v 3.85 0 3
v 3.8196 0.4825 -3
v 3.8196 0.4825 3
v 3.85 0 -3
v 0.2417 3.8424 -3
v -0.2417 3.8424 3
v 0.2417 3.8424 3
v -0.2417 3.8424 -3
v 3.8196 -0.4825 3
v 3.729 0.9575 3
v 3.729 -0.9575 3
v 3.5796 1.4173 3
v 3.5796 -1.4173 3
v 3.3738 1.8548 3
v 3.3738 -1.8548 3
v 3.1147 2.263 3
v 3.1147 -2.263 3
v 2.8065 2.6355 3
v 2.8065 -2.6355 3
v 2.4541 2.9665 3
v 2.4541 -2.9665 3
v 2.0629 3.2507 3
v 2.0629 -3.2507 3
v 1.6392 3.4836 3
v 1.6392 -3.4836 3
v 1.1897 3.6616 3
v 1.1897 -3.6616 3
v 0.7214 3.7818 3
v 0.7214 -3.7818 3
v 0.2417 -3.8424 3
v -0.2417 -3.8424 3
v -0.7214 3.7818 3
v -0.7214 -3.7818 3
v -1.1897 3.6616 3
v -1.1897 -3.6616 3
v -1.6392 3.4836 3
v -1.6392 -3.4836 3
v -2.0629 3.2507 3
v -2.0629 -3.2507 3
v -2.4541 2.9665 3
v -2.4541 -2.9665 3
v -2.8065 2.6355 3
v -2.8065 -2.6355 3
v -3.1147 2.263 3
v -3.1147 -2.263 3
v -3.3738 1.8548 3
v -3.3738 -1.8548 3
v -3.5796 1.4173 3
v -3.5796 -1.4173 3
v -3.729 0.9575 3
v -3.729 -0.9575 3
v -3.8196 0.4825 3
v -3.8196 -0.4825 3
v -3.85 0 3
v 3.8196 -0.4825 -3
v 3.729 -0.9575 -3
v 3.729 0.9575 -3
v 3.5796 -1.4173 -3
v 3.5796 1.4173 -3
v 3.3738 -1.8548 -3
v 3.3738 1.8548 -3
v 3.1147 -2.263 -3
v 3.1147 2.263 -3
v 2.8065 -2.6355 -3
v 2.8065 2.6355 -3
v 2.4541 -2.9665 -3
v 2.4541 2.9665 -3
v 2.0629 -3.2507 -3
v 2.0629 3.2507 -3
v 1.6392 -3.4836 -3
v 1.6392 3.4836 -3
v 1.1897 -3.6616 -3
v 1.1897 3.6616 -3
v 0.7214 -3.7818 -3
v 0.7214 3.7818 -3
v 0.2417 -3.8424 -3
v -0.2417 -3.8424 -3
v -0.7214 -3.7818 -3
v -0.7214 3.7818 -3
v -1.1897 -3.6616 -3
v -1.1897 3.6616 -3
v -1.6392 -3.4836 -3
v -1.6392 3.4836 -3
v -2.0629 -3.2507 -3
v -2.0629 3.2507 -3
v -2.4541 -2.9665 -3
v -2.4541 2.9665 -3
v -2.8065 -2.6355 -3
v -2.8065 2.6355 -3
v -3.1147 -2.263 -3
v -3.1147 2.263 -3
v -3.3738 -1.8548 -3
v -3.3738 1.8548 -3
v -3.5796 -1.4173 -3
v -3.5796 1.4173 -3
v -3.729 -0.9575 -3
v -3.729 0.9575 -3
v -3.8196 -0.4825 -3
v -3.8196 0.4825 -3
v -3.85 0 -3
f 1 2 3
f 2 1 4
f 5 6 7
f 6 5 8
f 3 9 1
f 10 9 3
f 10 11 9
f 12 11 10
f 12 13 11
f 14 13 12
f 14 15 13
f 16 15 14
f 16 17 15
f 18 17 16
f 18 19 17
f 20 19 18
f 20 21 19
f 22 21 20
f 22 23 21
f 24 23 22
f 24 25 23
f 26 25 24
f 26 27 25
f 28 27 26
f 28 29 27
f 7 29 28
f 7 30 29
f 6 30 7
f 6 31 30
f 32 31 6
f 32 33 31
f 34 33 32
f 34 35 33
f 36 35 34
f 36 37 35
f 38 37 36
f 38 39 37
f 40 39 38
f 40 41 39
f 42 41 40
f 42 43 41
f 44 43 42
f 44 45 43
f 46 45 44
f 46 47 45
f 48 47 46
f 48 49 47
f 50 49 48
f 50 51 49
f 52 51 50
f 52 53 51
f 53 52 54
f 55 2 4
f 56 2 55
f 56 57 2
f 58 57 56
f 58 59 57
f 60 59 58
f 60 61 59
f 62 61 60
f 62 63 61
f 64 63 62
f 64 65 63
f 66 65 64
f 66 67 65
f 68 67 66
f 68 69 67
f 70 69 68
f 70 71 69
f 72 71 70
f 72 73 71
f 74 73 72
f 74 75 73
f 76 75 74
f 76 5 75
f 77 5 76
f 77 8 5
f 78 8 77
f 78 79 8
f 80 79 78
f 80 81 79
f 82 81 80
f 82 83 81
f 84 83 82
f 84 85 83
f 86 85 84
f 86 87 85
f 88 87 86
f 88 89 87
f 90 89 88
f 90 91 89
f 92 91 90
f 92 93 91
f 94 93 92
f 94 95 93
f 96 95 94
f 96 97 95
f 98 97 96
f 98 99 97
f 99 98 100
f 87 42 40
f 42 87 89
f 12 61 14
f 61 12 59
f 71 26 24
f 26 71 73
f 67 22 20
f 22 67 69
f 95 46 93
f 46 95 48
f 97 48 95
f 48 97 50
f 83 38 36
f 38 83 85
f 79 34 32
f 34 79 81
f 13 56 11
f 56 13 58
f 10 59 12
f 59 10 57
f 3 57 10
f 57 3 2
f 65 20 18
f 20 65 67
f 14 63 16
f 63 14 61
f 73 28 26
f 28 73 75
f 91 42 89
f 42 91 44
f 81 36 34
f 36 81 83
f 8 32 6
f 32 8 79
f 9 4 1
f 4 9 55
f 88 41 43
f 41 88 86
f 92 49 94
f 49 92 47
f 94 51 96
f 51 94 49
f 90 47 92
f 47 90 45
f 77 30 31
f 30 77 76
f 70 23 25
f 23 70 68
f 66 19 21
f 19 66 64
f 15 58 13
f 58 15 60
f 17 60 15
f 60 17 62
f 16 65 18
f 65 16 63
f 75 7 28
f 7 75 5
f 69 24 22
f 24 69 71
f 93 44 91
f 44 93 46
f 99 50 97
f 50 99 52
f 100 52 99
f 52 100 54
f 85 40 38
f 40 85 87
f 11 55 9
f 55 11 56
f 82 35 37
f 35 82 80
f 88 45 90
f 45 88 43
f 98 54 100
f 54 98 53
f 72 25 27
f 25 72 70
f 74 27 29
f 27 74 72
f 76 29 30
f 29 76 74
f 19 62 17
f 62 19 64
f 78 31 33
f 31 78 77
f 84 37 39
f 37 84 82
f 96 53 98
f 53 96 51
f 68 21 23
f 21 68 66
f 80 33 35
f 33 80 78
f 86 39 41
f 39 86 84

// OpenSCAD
$fn = 50;


difference() {
	union() {
		translate(v = [0, 0, -3.0000000000]) {
			cylinder(h = 6, r = 3.8500000000);
		}
	}
	union() {
		translate(v = [0, 0, -100.0000000000]) {
			cylinder(h = 200, r = 0);
		}
	}
}
